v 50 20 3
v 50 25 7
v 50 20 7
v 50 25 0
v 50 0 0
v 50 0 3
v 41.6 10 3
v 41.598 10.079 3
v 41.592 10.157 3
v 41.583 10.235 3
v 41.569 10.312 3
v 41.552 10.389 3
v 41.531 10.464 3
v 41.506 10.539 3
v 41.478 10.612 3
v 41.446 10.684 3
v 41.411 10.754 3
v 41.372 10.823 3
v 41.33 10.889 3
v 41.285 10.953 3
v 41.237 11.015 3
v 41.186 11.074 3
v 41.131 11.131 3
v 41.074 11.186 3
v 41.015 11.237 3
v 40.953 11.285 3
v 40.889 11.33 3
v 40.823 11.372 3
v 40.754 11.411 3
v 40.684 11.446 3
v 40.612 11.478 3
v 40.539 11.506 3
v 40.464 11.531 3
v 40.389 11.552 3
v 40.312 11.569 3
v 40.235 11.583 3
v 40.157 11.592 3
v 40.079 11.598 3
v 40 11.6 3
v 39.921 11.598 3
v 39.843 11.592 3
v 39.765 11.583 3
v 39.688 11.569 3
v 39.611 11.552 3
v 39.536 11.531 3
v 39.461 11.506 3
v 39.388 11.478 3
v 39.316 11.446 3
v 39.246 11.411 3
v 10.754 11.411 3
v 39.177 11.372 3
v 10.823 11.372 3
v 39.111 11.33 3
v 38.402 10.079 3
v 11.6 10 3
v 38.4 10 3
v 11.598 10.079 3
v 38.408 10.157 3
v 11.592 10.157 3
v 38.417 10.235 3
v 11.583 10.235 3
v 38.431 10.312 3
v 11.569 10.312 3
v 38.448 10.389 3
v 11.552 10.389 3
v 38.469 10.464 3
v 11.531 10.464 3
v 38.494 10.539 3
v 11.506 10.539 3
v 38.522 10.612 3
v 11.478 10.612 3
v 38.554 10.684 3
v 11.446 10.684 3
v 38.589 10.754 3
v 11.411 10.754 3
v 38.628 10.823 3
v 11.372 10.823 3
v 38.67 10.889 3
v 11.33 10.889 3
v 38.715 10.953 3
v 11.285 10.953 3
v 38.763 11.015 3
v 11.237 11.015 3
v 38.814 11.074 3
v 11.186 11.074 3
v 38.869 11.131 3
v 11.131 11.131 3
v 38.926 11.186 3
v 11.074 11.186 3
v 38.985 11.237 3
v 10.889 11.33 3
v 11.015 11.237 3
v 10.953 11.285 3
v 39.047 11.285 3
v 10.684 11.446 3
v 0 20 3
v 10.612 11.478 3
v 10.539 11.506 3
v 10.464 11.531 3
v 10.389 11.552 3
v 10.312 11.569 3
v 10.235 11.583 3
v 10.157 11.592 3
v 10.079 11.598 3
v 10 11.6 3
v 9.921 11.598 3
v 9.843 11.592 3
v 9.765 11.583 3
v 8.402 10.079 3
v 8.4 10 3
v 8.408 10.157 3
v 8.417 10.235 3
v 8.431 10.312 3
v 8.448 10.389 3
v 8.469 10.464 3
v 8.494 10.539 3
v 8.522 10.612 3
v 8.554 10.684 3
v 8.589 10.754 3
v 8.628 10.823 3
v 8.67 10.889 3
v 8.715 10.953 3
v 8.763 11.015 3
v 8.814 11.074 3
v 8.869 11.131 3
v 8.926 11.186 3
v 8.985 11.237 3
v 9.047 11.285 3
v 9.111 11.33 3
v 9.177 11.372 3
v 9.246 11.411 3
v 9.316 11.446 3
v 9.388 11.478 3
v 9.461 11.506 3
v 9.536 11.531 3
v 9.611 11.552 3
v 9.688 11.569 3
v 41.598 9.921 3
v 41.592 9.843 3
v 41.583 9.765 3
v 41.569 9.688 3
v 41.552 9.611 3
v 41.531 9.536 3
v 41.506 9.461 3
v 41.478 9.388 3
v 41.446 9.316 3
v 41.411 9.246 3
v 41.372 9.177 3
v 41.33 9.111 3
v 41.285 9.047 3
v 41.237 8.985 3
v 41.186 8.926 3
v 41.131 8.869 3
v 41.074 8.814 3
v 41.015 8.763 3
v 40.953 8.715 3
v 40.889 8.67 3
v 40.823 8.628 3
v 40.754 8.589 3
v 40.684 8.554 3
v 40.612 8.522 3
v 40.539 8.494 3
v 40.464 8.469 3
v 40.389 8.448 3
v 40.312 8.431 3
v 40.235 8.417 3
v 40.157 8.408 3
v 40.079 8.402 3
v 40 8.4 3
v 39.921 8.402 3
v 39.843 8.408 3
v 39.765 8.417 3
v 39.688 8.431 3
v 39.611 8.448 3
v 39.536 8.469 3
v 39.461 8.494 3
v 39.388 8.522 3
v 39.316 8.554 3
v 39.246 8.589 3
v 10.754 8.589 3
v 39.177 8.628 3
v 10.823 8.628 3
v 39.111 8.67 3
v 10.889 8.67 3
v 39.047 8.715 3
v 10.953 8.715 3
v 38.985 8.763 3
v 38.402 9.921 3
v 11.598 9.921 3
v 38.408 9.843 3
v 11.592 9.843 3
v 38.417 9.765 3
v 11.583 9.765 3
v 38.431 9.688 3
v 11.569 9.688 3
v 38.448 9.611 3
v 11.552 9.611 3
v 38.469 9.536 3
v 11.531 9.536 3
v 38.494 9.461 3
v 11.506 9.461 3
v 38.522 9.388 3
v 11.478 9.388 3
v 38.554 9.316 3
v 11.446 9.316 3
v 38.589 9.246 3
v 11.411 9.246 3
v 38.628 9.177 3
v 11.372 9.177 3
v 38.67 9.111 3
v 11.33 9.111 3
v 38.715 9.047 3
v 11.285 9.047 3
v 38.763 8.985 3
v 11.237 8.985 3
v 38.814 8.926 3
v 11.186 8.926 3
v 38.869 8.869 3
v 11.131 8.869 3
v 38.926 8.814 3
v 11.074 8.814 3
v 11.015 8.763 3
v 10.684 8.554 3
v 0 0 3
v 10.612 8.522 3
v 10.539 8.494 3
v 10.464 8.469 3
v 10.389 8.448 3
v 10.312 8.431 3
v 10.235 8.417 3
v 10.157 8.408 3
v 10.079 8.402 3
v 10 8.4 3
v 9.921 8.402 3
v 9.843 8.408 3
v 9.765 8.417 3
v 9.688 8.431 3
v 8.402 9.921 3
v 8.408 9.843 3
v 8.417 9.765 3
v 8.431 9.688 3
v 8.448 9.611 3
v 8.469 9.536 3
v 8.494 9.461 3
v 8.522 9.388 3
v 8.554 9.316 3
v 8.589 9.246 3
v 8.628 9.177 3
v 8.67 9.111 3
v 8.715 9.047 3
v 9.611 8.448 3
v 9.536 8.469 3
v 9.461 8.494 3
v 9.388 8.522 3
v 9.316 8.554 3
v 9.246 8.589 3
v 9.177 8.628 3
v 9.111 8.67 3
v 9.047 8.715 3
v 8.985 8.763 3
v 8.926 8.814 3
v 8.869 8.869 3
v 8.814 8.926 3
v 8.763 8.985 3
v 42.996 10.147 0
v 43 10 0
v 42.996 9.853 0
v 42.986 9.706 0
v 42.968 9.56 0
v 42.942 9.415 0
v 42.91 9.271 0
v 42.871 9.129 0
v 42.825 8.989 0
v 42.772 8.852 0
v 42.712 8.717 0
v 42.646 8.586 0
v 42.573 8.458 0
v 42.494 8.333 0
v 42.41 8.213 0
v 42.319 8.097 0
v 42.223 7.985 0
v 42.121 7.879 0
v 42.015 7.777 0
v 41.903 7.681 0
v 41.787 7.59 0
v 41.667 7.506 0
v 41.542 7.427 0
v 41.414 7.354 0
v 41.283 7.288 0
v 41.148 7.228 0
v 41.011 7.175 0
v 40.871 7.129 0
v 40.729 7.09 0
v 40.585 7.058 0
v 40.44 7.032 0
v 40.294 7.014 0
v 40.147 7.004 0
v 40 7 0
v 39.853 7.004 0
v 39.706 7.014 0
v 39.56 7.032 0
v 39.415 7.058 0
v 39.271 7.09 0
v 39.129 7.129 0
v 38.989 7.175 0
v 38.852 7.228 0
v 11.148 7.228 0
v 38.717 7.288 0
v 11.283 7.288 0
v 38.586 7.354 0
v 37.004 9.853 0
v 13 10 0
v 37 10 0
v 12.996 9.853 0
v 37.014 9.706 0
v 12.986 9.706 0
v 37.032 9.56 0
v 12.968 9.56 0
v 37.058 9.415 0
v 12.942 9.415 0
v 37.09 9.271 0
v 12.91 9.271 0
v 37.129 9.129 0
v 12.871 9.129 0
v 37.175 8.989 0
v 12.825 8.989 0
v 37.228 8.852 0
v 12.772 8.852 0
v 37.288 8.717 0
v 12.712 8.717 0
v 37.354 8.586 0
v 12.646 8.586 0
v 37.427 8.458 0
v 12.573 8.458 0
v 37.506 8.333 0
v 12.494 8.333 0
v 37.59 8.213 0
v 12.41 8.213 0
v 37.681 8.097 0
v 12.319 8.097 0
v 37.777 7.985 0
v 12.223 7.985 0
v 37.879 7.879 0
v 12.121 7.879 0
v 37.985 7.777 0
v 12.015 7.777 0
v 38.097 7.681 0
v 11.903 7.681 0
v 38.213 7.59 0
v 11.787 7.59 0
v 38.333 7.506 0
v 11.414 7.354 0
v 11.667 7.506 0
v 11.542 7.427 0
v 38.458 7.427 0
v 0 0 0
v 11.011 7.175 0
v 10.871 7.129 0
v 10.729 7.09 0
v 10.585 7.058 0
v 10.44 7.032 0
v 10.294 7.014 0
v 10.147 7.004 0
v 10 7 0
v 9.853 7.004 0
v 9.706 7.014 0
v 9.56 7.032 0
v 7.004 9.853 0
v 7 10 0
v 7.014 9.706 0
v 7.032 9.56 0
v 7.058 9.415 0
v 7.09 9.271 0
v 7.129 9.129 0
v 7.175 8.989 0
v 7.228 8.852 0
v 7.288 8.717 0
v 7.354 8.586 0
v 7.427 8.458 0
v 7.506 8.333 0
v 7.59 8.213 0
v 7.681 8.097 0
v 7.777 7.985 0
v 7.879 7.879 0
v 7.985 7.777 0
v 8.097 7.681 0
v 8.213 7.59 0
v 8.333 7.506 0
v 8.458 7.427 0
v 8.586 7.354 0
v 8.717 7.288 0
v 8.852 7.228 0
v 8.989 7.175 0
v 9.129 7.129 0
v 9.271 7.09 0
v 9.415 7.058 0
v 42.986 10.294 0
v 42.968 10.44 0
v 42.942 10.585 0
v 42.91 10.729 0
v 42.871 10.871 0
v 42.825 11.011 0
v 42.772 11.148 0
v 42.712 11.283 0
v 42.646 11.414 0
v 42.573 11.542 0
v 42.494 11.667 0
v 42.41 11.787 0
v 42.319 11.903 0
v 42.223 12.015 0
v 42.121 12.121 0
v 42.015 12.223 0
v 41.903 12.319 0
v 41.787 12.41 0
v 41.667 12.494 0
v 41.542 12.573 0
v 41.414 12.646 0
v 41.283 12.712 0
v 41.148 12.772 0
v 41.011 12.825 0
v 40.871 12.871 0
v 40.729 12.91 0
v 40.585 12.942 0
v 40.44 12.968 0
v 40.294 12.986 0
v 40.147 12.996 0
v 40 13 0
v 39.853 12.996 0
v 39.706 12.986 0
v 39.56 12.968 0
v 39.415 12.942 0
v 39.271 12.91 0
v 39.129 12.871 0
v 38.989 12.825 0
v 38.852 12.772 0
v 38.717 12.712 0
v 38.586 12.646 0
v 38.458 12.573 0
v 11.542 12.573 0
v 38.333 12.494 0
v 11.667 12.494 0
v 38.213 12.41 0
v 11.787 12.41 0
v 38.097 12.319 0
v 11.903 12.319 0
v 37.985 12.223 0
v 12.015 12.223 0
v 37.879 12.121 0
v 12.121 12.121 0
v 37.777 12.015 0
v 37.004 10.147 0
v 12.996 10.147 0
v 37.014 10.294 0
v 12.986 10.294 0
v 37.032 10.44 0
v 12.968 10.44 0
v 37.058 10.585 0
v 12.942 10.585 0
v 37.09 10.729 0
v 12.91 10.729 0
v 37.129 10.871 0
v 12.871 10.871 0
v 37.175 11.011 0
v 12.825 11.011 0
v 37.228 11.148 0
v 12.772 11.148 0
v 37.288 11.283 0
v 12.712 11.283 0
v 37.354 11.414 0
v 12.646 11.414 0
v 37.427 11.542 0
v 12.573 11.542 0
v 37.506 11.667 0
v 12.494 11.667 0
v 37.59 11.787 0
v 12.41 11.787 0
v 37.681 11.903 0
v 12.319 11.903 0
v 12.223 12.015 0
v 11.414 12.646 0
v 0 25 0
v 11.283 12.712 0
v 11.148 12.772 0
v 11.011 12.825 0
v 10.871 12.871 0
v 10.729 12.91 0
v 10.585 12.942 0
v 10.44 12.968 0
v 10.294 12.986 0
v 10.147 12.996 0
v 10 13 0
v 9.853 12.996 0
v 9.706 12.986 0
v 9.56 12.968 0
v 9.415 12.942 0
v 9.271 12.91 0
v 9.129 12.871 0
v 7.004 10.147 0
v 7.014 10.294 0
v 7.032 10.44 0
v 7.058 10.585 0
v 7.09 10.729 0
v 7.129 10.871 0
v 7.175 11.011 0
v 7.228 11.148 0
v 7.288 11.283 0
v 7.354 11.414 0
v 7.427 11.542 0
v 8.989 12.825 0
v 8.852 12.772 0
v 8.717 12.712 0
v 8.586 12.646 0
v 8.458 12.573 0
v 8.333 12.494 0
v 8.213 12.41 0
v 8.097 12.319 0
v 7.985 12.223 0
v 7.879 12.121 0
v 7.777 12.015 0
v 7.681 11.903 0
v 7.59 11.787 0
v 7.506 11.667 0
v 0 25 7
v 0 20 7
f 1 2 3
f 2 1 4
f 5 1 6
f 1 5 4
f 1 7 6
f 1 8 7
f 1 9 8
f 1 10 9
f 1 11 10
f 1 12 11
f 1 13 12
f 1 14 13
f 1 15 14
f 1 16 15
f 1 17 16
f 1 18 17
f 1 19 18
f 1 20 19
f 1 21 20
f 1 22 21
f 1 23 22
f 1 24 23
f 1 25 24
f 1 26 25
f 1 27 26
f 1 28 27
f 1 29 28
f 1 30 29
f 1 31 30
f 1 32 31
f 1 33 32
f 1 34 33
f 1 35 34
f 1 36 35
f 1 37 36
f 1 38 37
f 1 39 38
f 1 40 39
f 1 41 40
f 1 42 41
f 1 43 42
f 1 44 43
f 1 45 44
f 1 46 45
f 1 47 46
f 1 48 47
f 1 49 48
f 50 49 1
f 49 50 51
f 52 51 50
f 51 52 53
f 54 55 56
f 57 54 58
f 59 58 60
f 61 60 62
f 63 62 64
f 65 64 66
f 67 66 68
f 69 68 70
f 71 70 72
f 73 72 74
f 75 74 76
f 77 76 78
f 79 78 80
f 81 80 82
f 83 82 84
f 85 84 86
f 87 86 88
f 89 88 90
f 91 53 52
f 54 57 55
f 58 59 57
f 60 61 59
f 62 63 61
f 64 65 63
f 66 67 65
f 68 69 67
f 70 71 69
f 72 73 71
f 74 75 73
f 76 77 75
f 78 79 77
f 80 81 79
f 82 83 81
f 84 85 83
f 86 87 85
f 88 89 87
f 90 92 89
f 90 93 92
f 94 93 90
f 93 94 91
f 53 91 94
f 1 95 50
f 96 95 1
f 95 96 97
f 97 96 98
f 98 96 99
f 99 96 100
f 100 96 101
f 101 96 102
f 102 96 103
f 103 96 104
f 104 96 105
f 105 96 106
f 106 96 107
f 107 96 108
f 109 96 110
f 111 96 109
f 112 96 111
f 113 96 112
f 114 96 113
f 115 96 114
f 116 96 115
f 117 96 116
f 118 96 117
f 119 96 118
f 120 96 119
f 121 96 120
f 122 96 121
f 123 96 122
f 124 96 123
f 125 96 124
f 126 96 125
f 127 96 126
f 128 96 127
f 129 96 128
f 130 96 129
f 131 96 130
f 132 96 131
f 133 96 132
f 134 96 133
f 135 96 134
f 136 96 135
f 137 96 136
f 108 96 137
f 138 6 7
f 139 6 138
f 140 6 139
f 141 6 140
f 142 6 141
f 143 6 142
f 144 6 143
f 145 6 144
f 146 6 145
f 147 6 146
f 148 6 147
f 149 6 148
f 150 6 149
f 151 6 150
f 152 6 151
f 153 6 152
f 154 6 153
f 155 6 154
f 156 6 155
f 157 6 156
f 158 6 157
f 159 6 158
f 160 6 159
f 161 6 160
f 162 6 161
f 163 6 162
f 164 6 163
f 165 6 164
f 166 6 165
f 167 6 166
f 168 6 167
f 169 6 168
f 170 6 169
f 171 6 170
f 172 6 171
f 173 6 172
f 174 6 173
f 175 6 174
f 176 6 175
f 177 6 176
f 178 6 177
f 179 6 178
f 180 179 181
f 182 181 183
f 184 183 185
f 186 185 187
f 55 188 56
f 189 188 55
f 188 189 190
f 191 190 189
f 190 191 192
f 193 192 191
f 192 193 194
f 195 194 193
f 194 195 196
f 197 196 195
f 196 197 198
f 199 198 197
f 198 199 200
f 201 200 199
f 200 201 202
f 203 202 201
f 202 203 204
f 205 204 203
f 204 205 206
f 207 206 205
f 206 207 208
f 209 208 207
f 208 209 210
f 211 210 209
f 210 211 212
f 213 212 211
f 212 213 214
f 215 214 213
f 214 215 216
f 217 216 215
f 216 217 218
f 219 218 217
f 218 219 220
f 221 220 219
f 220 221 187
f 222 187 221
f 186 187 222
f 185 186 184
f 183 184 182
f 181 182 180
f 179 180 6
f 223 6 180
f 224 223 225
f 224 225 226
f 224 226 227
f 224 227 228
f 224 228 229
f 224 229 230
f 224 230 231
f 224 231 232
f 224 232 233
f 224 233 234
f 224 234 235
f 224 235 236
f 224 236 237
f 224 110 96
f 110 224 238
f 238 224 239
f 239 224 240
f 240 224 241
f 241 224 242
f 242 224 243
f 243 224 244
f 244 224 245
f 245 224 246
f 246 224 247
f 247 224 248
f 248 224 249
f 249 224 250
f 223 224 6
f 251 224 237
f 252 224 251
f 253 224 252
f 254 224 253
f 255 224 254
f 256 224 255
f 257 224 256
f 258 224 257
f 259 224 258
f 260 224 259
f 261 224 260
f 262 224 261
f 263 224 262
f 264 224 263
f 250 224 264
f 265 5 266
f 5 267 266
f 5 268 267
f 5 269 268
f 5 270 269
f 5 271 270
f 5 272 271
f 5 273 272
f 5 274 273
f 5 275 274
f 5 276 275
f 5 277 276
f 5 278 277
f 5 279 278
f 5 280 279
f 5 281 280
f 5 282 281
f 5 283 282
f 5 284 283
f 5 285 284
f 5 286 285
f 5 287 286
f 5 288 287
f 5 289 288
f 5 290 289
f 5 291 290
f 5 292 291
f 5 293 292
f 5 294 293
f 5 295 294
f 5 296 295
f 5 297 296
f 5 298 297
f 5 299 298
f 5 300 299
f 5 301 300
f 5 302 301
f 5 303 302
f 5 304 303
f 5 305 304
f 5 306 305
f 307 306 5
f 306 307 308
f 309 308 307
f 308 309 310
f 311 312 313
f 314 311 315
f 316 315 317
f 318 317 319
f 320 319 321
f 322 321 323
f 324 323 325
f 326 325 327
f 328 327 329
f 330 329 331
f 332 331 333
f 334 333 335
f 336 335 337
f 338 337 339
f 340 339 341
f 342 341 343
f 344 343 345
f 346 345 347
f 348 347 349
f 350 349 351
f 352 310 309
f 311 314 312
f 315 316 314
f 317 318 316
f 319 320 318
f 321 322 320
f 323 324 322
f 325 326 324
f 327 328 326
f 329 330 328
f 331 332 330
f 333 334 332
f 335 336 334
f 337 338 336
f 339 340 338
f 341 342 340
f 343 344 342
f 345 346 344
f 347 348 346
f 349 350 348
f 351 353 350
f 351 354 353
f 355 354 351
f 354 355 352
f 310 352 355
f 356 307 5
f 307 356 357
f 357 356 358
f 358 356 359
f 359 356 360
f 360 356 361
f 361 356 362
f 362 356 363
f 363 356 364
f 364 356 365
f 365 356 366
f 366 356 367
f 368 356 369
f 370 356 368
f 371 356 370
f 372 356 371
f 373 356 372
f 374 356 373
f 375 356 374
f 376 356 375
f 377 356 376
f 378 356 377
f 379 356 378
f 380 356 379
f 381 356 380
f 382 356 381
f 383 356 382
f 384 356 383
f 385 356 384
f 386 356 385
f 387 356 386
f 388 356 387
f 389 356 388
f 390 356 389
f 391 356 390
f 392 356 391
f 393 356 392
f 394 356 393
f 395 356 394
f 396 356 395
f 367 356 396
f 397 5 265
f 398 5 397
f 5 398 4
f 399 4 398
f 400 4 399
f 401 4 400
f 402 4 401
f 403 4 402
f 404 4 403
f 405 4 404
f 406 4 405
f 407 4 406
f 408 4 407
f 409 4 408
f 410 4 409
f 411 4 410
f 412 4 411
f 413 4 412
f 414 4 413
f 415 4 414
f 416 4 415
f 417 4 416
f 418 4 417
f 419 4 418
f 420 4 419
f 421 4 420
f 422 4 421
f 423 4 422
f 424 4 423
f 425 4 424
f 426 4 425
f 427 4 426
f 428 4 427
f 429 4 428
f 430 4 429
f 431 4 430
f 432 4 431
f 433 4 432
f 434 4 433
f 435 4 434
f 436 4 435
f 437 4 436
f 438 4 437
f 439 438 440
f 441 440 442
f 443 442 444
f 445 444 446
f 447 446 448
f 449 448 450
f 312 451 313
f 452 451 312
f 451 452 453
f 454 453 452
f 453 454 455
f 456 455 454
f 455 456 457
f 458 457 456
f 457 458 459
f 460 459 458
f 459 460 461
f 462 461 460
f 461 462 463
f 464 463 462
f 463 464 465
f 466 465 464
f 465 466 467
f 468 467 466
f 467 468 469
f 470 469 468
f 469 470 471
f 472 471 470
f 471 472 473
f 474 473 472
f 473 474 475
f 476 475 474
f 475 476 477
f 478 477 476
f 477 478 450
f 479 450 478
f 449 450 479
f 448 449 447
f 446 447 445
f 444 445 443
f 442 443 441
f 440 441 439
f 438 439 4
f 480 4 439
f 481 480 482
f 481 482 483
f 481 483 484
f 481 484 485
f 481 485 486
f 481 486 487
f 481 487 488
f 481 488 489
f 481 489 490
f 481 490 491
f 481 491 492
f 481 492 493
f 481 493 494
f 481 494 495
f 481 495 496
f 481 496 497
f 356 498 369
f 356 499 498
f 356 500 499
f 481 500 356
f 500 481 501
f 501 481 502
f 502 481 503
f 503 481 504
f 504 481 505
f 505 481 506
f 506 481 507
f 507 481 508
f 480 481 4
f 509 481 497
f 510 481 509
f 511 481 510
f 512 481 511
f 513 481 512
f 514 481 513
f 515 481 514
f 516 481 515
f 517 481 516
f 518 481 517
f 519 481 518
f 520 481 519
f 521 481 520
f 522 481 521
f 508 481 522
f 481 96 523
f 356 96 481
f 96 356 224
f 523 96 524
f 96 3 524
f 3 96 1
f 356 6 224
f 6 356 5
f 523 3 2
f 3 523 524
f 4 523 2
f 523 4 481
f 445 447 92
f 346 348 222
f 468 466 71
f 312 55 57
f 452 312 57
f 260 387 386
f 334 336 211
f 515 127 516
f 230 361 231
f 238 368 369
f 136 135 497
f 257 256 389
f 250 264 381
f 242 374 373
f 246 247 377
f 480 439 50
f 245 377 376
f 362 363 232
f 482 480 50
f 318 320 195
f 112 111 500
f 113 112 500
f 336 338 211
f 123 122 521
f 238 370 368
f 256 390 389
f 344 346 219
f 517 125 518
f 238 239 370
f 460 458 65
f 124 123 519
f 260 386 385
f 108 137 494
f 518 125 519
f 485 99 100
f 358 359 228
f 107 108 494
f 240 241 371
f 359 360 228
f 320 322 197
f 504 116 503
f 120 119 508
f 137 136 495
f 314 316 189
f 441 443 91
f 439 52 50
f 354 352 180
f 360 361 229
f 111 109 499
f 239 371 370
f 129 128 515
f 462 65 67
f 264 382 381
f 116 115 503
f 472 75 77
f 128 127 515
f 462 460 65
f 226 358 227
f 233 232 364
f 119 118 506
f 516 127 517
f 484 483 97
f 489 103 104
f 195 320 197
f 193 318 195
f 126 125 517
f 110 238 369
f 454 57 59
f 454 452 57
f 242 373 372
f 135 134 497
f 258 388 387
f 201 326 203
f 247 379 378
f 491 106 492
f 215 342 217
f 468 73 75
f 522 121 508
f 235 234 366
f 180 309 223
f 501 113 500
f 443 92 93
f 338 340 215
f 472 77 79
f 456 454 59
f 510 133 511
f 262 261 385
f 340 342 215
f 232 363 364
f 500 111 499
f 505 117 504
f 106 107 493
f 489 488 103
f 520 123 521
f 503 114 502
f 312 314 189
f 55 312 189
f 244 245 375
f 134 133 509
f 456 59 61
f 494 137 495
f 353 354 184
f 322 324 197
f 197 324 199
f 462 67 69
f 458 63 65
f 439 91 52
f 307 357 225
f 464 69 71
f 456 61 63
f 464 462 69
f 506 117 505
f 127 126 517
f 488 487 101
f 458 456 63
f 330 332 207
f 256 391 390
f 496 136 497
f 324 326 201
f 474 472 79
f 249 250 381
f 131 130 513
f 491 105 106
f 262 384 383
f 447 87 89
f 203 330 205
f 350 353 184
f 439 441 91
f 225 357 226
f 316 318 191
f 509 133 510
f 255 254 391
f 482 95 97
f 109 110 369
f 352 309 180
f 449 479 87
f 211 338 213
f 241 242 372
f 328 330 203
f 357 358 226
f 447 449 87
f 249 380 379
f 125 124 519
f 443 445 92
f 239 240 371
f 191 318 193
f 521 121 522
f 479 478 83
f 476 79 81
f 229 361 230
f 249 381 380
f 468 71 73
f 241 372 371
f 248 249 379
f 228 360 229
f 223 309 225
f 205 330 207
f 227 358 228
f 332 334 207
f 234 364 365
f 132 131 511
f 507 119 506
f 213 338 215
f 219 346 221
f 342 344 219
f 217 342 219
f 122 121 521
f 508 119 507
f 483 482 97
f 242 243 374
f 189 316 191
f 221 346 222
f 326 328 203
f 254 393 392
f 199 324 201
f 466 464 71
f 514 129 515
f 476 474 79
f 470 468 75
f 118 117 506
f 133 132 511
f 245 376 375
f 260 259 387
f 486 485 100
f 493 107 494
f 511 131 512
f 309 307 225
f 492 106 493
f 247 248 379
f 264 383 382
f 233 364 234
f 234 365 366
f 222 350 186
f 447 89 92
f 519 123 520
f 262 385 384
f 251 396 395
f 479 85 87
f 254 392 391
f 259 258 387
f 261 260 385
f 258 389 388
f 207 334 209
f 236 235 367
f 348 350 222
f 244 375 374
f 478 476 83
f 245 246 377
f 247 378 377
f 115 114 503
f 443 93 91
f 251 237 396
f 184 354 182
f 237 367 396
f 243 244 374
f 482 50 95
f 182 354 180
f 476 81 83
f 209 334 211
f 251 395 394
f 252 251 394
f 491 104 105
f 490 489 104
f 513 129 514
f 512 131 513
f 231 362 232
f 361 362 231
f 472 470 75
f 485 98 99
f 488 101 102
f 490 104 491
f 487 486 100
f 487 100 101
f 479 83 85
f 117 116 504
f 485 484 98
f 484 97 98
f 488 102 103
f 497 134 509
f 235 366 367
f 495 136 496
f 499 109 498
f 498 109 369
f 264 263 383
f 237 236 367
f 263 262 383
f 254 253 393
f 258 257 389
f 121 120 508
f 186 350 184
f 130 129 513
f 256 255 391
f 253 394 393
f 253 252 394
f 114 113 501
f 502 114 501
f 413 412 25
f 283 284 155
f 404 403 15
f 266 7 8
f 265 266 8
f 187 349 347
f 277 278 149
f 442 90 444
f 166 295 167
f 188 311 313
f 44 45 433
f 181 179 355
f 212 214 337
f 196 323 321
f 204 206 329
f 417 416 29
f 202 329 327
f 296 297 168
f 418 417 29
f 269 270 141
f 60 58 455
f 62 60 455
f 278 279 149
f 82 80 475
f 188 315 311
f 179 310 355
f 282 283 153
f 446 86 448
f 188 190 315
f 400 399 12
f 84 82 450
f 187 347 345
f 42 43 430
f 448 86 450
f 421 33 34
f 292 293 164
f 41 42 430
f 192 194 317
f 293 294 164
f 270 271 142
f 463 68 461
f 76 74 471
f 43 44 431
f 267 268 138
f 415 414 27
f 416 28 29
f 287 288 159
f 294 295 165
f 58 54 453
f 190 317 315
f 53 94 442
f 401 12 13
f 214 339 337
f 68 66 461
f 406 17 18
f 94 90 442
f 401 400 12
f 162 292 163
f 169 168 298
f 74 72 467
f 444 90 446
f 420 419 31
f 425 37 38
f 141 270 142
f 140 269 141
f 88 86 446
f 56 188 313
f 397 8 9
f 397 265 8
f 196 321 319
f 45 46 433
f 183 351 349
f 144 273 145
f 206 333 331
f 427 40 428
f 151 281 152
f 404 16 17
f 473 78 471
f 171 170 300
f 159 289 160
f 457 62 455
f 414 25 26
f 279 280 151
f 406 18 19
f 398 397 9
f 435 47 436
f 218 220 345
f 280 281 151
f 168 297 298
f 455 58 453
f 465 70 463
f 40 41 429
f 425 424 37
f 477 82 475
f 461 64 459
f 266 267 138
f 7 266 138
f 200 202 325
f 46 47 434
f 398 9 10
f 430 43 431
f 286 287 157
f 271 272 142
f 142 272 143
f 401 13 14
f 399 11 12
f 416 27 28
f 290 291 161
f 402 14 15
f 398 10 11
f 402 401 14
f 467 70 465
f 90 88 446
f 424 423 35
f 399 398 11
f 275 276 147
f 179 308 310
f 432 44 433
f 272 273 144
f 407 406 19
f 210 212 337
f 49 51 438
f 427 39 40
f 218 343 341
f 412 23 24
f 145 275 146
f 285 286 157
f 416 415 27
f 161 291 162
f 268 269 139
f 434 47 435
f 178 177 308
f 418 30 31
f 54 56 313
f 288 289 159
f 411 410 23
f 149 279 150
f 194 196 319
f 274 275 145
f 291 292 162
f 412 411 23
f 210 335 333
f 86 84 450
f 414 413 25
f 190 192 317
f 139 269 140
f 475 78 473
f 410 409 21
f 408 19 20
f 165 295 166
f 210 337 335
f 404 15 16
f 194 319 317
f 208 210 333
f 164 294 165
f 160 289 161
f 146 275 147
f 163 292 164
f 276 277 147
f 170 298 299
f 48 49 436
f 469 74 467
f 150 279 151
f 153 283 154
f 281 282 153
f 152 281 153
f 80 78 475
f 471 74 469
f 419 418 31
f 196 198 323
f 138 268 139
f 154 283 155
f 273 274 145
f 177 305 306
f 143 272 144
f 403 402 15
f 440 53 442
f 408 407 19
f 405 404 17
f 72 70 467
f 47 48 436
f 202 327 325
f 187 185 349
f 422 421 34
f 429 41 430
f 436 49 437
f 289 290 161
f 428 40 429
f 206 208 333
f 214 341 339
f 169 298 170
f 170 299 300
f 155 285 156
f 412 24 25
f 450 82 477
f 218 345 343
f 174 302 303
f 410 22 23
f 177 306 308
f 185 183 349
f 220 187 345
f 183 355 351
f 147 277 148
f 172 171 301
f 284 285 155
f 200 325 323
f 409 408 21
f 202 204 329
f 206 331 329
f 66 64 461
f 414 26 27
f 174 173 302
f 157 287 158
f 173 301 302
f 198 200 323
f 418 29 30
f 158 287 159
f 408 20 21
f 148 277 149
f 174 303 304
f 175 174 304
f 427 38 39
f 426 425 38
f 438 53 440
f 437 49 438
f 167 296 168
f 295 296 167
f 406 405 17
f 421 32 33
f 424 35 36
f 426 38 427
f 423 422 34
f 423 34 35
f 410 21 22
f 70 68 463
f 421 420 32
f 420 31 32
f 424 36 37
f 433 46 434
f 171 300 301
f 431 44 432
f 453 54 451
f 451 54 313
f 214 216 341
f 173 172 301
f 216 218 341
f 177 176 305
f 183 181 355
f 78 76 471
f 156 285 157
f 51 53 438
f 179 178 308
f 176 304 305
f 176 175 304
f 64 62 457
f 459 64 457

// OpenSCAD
// SPDX-License-Identifier: GPL-2.0

$fn = 128;

frame = [50, 20, 3];
inner = [frame.x, 5, frame.z + 4];

module screw_sunk(
        l=20,   //length
        dh = 6,   //head dia
        lh = 3,   //head length
        ds = 3.2,  //shaft dia
        )
{
        cylinder(h=lh, r1=dh/2, r2=ds/2);
        cylinder(h=l, r=ds/2);
}

difference() {
	union() {
		cube(frame);
		translate([0, frame.y, 0])
			cube(inner);
	}
	translate([10, frame.y / 2, 0])
		screw_sunk();
	translate([frame.x - 10, frame.y / 2, 0])
		screw_sunk();
}
